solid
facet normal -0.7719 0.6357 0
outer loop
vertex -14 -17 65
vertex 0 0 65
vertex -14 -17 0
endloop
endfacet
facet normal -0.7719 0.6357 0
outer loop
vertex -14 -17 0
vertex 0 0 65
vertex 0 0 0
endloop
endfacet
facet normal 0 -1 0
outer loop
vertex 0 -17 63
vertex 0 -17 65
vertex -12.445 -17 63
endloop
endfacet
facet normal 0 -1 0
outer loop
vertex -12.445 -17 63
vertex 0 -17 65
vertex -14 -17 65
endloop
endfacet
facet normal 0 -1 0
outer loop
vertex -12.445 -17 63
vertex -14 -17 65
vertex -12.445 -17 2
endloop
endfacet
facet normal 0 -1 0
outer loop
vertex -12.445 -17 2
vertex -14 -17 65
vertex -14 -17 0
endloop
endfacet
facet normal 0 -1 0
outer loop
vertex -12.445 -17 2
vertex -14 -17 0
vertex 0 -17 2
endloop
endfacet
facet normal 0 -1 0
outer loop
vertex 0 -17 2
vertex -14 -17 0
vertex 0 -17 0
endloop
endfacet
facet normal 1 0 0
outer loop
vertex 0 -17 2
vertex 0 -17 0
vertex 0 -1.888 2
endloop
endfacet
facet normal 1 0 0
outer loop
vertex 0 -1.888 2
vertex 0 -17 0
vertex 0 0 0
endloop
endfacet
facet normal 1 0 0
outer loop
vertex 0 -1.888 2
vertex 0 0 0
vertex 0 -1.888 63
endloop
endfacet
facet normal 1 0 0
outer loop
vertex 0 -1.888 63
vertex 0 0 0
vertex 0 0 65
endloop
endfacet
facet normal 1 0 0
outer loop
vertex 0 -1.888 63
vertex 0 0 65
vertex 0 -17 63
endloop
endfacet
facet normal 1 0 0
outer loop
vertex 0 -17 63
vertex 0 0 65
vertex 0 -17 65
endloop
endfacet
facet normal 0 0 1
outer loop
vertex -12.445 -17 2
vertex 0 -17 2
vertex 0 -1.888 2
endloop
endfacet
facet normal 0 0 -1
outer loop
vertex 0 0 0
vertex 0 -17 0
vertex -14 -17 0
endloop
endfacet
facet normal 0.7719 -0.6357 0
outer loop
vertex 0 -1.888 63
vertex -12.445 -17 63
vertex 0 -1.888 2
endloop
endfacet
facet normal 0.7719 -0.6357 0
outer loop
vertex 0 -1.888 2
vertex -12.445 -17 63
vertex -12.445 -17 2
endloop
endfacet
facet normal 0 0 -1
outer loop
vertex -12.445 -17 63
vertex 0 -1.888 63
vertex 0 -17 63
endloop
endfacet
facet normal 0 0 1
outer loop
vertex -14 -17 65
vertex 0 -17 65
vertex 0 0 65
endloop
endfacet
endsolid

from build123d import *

# Parameters (mm, degrees)
BOSS_EXTRUDE2_DEPTH = 2
BOSS_EXTRUDE3_DEPTH = 61
BOSS_EXTRUDE4_DEPTH = 2


with BuildPart() as part:
    # Sketch1 → Boss-Extrude2 (new body)
    with BuildSketch(Plane.XY):
        Polygon((0, 0), (0, -17), (-14, -17), align=None)
    extrude(amount=BOSS_EXTRUDE2_DEPTH)

    # Sketch5 → Boss-Extrude3 (add)
    with BuildSketch(Plane.XY.offset(2)):
        Polygon((-14, -17), (-12.445455373, -17), (0, -1.887661332), (0, 0), align=None)
    extrude(amount=BOSS_EXTRUDE3_DEPTH)

    # Sketch6 → Boss-Extrude4 (add)
    with BuildSketch(Plane.XY.offset(63)):
        Polygon((0, 0), (0, -17), (-14, -17), align=None)
    extrude(amount=BOSS_EXTRUDE4_DEPTH)


solid = part.part
